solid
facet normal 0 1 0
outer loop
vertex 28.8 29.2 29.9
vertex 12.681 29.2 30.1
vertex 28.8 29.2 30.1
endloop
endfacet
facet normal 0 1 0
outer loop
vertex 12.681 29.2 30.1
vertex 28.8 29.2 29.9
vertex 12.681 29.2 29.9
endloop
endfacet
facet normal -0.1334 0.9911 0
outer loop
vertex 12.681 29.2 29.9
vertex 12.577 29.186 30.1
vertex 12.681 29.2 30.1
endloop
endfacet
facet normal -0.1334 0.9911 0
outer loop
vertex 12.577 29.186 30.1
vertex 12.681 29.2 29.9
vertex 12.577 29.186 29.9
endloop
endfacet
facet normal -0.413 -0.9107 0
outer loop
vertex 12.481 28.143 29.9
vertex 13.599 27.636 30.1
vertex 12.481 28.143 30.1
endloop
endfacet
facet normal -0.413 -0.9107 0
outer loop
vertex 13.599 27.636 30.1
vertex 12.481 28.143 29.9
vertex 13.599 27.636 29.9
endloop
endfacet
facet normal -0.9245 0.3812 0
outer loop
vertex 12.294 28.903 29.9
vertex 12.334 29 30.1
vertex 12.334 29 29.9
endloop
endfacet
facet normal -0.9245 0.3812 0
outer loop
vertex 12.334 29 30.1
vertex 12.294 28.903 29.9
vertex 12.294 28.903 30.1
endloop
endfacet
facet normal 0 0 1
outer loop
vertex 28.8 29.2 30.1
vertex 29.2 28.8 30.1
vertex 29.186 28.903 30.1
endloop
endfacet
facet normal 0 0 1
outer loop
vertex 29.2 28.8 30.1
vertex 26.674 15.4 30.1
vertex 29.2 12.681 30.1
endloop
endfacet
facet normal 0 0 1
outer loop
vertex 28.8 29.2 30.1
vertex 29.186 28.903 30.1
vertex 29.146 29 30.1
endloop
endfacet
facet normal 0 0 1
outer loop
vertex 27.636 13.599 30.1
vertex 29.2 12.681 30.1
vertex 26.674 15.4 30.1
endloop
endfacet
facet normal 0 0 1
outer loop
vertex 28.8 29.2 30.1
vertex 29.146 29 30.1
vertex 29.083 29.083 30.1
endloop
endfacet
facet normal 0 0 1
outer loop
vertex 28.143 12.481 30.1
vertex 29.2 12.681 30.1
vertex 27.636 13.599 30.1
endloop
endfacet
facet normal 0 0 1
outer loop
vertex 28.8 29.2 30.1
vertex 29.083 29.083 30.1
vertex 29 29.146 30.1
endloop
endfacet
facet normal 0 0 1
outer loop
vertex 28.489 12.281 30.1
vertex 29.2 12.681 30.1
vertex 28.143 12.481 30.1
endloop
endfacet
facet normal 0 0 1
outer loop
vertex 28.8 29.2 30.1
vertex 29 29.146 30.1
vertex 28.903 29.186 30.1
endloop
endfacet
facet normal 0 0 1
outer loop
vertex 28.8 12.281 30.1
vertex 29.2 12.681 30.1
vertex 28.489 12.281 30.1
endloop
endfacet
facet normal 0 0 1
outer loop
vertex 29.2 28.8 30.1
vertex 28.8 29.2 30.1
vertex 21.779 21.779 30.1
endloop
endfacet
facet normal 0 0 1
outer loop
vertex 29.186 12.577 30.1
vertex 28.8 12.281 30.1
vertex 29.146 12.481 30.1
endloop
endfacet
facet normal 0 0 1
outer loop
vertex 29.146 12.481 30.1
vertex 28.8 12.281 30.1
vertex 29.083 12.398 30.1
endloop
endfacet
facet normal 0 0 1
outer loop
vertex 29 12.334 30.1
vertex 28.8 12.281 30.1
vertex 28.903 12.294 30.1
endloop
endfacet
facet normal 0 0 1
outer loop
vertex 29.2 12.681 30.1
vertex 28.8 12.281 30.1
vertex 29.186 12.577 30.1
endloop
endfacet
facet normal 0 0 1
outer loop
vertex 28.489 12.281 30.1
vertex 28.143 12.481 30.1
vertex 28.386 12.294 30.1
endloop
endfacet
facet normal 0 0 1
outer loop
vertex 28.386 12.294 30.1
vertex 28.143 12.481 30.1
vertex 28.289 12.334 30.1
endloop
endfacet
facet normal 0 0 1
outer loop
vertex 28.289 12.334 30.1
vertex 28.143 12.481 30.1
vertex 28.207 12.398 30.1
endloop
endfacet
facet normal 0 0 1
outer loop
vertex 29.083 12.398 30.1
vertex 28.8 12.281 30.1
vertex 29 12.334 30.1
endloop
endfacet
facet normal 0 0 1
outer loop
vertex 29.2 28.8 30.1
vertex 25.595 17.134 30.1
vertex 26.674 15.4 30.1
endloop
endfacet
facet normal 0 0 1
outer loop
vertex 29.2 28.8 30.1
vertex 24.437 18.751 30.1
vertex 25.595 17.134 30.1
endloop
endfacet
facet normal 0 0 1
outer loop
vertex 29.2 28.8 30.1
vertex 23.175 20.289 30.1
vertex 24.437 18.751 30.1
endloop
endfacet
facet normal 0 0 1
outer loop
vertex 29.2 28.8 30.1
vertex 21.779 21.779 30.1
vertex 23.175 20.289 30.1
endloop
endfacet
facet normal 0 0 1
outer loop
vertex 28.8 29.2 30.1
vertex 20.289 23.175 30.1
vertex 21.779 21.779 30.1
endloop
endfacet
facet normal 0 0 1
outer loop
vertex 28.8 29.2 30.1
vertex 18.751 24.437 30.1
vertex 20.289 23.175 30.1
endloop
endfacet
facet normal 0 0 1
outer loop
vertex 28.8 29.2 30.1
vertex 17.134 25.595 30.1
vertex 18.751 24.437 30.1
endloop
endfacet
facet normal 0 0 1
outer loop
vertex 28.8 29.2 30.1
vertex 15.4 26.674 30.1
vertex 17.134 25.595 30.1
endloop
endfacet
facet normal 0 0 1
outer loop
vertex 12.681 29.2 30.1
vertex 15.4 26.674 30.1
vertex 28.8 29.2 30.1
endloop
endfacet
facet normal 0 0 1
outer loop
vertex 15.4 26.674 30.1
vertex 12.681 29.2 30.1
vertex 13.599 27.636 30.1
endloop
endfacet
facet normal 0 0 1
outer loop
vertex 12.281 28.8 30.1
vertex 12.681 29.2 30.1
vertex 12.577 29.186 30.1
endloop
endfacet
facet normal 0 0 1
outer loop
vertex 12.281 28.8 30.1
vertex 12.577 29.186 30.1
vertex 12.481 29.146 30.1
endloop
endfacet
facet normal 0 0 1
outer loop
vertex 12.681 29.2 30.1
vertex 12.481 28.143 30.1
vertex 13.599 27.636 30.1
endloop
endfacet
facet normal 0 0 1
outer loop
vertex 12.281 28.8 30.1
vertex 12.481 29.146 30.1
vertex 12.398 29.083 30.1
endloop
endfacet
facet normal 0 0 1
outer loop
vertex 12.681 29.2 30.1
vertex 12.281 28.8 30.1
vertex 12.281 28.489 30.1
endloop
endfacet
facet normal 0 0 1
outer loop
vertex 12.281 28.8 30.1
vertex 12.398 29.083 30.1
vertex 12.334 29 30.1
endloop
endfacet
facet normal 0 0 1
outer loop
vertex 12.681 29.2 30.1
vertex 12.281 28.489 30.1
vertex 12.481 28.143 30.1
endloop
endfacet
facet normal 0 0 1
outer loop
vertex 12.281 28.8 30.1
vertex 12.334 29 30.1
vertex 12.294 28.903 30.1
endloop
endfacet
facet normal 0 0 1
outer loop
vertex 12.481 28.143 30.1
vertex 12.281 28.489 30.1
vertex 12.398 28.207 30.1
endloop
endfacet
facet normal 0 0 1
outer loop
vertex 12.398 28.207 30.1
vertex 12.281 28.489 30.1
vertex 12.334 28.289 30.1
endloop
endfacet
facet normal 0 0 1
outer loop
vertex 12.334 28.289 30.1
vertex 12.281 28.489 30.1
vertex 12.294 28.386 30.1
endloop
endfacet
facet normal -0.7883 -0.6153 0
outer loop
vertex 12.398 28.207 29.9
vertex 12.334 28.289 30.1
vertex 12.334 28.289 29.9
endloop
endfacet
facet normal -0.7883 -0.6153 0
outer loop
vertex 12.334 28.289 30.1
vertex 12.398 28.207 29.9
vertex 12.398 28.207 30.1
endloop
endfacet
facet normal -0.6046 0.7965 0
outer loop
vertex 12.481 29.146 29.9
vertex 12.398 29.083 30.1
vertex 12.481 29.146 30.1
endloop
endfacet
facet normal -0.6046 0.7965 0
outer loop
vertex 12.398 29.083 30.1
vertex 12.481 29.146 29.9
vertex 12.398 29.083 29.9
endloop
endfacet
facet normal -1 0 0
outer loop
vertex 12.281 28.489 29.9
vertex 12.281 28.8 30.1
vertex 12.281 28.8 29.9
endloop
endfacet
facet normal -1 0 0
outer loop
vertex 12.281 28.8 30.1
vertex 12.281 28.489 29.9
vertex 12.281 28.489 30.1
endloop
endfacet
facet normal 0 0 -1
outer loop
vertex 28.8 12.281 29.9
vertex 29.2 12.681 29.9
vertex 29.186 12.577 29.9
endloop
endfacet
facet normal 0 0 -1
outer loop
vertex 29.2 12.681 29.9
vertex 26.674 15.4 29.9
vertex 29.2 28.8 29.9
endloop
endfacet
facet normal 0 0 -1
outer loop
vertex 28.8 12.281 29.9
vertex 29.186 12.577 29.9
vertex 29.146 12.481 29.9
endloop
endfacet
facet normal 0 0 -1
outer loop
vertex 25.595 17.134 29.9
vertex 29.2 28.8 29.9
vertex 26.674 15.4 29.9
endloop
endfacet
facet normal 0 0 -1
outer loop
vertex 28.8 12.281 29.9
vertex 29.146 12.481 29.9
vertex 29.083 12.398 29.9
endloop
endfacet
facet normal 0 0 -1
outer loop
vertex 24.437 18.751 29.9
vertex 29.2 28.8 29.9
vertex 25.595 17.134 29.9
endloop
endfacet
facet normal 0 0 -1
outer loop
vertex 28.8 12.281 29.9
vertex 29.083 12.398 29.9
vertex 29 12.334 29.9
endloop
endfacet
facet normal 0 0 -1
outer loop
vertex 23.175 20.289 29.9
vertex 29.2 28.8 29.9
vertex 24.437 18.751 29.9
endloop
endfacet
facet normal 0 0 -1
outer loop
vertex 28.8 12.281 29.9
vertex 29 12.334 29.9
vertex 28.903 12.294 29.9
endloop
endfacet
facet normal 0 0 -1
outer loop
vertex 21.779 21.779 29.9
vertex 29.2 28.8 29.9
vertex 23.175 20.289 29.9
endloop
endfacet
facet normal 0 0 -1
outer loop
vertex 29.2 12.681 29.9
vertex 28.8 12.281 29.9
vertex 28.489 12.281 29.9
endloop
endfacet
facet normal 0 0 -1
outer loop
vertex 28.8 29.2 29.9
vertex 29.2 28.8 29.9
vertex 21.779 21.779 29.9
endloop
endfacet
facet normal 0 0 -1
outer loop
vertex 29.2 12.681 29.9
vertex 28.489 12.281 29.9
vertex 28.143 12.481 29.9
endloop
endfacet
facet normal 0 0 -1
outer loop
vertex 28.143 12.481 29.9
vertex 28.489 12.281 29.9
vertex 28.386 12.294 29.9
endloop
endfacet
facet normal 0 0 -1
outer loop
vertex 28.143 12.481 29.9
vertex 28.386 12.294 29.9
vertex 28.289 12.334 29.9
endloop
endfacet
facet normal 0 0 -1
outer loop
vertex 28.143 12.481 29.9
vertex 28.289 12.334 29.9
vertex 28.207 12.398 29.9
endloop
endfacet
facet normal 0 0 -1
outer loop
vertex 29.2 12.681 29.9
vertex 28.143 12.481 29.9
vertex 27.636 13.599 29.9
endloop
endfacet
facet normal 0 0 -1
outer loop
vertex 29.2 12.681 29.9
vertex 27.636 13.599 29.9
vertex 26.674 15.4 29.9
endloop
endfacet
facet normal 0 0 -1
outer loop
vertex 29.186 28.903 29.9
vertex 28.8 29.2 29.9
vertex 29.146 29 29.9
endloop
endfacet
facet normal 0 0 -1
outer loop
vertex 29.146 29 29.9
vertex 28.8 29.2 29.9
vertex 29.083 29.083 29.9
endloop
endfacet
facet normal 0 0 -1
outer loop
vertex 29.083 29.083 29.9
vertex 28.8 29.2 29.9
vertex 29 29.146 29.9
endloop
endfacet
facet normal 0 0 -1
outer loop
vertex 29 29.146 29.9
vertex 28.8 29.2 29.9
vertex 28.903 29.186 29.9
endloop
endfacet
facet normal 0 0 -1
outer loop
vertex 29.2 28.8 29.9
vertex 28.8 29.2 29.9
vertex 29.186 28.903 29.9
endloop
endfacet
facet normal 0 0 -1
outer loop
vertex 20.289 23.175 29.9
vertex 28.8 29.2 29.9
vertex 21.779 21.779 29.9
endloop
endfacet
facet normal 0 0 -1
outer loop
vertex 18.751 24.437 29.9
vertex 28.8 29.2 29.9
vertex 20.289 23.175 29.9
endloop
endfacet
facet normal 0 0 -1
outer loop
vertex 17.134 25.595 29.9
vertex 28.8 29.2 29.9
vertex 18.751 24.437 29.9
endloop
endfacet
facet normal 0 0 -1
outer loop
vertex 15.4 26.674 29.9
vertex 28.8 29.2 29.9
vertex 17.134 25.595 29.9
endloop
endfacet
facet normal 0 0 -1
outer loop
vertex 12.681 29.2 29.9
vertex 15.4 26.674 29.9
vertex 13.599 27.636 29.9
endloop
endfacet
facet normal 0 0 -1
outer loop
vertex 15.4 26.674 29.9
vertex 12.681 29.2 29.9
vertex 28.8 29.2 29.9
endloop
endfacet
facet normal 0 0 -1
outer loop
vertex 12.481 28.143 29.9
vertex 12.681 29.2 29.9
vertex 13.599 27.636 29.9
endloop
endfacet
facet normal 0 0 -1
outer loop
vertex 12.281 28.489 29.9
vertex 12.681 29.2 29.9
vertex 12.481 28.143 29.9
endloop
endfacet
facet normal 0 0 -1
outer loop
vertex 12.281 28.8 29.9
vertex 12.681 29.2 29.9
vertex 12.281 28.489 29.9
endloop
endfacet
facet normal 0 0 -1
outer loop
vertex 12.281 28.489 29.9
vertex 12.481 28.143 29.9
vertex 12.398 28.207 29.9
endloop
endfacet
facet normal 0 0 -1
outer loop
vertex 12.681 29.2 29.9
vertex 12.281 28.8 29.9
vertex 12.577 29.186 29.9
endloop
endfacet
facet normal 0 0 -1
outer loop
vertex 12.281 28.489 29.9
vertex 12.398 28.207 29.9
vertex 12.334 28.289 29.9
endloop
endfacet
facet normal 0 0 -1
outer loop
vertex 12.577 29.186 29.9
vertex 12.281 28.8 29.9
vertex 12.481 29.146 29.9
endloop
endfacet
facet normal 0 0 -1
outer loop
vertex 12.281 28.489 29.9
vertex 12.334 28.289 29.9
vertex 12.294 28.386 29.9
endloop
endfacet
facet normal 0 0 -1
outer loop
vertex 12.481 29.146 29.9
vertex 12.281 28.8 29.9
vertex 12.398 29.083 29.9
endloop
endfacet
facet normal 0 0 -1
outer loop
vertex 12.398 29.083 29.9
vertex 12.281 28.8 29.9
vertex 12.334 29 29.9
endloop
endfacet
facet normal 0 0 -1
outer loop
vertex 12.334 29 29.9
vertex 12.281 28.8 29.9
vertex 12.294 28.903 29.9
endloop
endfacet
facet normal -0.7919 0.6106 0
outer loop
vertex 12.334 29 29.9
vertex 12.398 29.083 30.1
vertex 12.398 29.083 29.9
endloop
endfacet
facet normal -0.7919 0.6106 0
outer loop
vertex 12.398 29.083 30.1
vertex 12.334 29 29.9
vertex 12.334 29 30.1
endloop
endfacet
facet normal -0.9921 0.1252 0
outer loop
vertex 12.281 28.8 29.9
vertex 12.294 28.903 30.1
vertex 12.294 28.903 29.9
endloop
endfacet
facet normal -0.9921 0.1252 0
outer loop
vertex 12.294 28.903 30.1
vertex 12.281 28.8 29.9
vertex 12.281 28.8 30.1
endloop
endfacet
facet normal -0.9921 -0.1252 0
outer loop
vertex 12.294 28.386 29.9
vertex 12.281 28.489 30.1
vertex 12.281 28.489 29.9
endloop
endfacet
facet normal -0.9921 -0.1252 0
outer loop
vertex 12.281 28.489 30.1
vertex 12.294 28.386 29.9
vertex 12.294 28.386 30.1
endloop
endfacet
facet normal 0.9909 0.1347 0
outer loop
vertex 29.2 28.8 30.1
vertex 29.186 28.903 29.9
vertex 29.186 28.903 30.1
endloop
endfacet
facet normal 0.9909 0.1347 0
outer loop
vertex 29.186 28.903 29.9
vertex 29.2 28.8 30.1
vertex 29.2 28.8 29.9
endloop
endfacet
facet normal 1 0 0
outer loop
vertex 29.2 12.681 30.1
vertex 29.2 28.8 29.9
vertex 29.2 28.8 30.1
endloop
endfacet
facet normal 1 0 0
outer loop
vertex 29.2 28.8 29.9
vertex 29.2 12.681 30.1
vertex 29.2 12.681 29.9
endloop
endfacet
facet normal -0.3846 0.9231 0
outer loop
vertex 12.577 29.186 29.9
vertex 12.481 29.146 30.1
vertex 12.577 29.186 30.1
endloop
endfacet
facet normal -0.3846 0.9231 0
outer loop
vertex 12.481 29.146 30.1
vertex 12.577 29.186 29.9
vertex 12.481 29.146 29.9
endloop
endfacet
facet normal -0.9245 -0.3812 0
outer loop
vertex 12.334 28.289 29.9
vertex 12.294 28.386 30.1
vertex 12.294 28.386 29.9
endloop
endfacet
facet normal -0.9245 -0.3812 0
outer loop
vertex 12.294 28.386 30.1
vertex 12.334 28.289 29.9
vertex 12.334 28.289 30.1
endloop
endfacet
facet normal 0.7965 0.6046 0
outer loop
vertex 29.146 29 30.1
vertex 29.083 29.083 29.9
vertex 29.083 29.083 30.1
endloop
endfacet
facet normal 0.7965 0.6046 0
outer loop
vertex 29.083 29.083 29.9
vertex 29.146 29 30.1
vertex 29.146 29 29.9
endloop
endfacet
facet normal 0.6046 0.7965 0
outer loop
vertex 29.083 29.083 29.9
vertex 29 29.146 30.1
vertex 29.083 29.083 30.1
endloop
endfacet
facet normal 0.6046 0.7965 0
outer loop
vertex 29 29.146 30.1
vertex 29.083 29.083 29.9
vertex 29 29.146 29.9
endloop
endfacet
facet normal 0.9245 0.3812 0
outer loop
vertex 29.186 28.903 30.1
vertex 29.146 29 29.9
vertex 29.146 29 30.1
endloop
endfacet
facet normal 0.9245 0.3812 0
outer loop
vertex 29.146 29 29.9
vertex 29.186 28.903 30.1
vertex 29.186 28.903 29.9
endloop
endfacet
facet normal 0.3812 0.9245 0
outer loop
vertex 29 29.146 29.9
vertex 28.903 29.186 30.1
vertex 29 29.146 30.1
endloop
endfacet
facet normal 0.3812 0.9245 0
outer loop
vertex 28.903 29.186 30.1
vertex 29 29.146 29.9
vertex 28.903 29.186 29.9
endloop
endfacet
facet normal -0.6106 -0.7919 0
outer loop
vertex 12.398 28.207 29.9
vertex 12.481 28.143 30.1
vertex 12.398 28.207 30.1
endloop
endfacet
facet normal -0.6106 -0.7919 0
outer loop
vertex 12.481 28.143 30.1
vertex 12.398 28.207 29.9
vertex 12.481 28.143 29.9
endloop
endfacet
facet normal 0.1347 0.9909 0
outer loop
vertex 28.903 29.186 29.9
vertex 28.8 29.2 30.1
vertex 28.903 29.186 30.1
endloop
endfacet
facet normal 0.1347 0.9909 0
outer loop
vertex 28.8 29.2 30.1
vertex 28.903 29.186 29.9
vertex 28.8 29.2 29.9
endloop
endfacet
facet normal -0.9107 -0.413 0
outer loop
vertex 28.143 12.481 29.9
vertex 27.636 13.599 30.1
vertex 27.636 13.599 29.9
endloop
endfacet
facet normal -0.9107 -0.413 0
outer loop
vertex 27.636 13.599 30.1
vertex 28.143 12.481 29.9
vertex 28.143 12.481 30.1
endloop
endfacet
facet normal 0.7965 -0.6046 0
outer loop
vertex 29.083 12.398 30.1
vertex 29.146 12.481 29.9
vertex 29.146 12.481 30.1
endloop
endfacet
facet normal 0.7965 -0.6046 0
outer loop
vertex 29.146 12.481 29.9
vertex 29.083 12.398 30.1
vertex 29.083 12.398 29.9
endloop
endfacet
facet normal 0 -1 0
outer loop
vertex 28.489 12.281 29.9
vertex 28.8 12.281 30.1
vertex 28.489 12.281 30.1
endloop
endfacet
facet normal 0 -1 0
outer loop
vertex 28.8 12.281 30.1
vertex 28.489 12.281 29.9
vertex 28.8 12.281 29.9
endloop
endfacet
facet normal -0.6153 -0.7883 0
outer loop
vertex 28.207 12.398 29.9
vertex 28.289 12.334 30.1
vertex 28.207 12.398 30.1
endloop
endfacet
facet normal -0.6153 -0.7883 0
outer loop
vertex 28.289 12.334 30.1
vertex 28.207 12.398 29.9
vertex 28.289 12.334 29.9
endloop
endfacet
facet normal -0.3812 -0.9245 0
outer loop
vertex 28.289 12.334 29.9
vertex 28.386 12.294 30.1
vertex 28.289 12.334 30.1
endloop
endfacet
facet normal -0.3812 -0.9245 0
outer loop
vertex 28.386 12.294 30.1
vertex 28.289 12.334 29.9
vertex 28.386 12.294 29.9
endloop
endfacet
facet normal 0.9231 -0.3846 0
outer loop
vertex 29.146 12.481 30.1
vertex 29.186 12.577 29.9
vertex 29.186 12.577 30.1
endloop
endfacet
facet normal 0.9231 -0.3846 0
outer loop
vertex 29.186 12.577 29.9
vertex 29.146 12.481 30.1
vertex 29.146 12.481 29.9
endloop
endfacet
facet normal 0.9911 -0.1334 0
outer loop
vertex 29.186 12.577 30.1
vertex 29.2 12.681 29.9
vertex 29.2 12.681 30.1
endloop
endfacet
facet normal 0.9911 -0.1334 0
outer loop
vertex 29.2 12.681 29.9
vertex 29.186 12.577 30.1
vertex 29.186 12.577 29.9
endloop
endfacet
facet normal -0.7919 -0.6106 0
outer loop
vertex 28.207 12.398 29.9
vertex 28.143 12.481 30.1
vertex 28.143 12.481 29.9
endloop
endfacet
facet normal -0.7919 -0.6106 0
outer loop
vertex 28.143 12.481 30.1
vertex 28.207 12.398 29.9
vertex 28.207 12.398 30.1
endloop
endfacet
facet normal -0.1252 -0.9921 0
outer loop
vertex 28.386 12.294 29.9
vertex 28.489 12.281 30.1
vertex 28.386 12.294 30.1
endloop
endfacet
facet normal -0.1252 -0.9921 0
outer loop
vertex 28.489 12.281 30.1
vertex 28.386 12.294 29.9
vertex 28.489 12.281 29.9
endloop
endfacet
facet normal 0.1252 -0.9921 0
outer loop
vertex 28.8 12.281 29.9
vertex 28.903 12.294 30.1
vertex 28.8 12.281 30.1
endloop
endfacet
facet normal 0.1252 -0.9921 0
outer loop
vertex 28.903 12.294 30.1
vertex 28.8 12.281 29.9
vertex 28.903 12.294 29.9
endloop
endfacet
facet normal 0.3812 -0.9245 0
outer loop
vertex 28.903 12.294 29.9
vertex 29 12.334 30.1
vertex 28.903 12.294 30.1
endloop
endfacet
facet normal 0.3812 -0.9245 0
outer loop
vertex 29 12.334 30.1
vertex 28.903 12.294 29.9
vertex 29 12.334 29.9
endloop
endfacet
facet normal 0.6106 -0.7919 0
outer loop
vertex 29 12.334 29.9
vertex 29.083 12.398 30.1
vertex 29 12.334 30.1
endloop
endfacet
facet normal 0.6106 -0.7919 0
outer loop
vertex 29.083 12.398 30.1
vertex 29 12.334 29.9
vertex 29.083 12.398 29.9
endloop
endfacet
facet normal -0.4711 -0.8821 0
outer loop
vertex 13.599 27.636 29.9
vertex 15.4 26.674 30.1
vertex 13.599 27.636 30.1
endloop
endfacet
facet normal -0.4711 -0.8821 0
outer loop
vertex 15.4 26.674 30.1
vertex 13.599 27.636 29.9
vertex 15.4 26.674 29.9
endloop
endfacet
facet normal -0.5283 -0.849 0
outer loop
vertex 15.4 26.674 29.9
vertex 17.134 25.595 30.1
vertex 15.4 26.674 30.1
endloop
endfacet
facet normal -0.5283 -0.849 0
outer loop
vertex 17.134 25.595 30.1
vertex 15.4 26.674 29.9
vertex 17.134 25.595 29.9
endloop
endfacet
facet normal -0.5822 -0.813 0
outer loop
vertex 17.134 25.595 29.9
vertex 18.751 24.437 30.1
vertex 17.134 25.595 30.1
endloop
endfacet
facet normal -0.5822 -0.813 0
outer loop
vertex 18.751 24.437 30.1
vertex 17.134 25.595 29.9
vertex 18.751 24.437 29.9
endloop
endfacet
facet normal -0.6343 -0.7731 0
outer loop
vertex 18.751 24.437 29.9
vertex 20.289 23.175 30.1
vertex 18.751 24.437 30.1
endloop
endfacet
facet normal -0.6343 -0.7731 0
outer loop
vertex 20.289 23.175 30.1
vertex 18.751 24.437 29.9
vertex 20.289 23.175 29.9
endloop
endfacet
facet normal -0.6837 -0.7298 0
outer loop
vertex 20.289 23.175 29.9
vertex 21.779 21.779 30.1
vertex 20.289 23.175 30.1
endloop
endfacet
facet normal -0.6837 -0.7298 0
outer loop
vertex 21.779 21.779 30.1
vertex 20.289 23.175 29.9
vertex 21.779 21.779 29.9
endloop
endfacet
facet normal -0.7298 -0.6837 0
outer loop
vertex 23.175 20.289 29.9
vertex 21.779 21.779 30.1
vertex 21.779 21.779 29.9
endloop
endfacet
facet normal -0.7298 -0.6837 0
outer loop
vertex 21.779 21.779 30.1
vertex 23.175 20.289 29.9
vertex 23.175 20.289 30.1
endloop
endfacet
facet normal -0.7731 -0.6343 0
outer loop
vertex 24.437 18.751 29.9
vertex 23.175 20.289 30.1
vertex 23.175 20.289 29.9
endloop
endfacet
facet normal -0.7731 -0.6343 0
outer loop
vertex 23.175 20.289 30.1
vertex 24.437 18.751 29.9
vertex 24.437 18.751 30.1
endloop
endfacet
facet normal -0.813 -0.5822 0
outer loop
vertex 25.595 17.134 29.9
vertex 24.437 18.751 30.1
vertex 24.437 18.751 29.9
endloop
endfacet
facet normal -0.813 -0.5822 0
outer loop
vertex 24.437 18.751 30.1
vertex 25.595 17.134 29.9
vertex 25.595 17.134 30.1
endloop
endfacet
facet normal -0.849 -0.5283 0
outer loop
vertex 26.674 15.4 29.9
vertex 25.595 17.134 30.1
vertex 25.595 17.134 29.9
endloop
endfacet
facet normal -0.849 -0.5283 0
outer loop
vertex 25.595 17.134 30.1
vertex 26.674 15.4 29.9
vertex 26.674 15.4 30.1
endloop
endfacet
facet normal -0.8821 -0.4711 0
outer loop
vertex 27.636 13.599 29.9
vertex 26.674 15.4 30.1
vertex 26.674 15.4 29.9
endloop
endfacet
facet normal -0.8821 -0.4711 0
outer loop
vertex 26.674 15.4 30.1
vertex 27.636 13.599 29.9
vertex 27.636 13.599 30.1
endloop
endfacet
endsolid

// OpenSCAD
// file: def.scad
round_radius = 0.6;
sticker_margin = 1.2;
sticker_round_radius = 0.4;
cube_size = 60;
disk_height = 12.5;
disk_radius = cube_size / 2;
base_size = cube_size / 2 / sqrt(10 + 7 * sqrt(2));
cut1_dis = base_size * (1 + sqrt(2) / 2);
cut2_dis = cube_size / 2;
inf = cube_size * 10;

module _cube() {
    cube([cube_size - round_radius * 2, cube_size - round_radius * 2, cube_size - round_radius * 2], center = true);
}

module _disk() {
    translate([0, 0, cube_size / 2 + disk_height / 2])
        cylinder(r = disk_radius - round_radius, h = disk_height - round_radius * 2, center = true, $fn = 96);
}

module _int_cut1() {
    translate([-inf, -inf, cut1_dis + round_radius])
        cube([inf * 2, inf * 2, inf]);
}

module _dif_cut1() {
    translate([-inf, -inf, cut1_dis - round_radius])
        cube([inf * 2, inf * 2, inf]);
}

module _sticker_int_cut1() {
    translate([-inf, -inf, cut1_dis + sticker_margin])
        cube([inf * 2, inf * 2, inf]);
}

module _sticker_dif_cut1() {
    translate([-inf, -inf, cut1_dis - sticker_margin])
        cube([inf * 2, inf * 2, inf]);
}

module _int_cut2() {
    translate([-inf, -inf, cut2_dis + round_radius])
        cube([inf * 2, inf * 2, inf]);
}

module _dif_cut2() {
    translate([-inf, -inf, cut2_dis - round_radius])
        cube([inf * 2, inf * 2, inf]);
}

module _sticker_int_cut2() {
    translate([-inf, -inf, cut2_dis + sticker_margin])
        cube([inf * 2, inf * 2, inf]);
}

module _sticker_dif_cut2() {
    translate([-inf, -inf, cut2_dis - sticker_margin])
        cube([inf * 2, inf * 2, inf]);
}

module _sticker_cube() {
    translate([-cube_size / 2 + sticker_margin, -cube_size / 2 + sticker_margin, cube_size / 2 - 0.05])
        cube([cube_size - sticker_margin * 2, cube_size - sticker_margin * 2, 0.1]);
}

module _sticker_disk() {
    translate([0, 0, cube_size / 2 + disk_height - 0.05])
        cylinder(r = disk_radius - sticker_margin, h = 0.1, center = true, $fn = 96);
}
// main file
include <def.scad>

module sticker_222() {
    minkowski() {
        difference() {
            intersection() {
                _sticker_cube();
                intersection_for (deg = [0, -90])
                    rotate([-90, 0, deg])
                        _sticker_int_cut1();
            }
            cylinder(r = disk_radius + sticker_margin, h = inf, center = true, $fn = 96);
        }
        cylinder(r = sticker_round_radius, h = 0.1, center = true, $fn = 24);
    }
}

sticker_222();
